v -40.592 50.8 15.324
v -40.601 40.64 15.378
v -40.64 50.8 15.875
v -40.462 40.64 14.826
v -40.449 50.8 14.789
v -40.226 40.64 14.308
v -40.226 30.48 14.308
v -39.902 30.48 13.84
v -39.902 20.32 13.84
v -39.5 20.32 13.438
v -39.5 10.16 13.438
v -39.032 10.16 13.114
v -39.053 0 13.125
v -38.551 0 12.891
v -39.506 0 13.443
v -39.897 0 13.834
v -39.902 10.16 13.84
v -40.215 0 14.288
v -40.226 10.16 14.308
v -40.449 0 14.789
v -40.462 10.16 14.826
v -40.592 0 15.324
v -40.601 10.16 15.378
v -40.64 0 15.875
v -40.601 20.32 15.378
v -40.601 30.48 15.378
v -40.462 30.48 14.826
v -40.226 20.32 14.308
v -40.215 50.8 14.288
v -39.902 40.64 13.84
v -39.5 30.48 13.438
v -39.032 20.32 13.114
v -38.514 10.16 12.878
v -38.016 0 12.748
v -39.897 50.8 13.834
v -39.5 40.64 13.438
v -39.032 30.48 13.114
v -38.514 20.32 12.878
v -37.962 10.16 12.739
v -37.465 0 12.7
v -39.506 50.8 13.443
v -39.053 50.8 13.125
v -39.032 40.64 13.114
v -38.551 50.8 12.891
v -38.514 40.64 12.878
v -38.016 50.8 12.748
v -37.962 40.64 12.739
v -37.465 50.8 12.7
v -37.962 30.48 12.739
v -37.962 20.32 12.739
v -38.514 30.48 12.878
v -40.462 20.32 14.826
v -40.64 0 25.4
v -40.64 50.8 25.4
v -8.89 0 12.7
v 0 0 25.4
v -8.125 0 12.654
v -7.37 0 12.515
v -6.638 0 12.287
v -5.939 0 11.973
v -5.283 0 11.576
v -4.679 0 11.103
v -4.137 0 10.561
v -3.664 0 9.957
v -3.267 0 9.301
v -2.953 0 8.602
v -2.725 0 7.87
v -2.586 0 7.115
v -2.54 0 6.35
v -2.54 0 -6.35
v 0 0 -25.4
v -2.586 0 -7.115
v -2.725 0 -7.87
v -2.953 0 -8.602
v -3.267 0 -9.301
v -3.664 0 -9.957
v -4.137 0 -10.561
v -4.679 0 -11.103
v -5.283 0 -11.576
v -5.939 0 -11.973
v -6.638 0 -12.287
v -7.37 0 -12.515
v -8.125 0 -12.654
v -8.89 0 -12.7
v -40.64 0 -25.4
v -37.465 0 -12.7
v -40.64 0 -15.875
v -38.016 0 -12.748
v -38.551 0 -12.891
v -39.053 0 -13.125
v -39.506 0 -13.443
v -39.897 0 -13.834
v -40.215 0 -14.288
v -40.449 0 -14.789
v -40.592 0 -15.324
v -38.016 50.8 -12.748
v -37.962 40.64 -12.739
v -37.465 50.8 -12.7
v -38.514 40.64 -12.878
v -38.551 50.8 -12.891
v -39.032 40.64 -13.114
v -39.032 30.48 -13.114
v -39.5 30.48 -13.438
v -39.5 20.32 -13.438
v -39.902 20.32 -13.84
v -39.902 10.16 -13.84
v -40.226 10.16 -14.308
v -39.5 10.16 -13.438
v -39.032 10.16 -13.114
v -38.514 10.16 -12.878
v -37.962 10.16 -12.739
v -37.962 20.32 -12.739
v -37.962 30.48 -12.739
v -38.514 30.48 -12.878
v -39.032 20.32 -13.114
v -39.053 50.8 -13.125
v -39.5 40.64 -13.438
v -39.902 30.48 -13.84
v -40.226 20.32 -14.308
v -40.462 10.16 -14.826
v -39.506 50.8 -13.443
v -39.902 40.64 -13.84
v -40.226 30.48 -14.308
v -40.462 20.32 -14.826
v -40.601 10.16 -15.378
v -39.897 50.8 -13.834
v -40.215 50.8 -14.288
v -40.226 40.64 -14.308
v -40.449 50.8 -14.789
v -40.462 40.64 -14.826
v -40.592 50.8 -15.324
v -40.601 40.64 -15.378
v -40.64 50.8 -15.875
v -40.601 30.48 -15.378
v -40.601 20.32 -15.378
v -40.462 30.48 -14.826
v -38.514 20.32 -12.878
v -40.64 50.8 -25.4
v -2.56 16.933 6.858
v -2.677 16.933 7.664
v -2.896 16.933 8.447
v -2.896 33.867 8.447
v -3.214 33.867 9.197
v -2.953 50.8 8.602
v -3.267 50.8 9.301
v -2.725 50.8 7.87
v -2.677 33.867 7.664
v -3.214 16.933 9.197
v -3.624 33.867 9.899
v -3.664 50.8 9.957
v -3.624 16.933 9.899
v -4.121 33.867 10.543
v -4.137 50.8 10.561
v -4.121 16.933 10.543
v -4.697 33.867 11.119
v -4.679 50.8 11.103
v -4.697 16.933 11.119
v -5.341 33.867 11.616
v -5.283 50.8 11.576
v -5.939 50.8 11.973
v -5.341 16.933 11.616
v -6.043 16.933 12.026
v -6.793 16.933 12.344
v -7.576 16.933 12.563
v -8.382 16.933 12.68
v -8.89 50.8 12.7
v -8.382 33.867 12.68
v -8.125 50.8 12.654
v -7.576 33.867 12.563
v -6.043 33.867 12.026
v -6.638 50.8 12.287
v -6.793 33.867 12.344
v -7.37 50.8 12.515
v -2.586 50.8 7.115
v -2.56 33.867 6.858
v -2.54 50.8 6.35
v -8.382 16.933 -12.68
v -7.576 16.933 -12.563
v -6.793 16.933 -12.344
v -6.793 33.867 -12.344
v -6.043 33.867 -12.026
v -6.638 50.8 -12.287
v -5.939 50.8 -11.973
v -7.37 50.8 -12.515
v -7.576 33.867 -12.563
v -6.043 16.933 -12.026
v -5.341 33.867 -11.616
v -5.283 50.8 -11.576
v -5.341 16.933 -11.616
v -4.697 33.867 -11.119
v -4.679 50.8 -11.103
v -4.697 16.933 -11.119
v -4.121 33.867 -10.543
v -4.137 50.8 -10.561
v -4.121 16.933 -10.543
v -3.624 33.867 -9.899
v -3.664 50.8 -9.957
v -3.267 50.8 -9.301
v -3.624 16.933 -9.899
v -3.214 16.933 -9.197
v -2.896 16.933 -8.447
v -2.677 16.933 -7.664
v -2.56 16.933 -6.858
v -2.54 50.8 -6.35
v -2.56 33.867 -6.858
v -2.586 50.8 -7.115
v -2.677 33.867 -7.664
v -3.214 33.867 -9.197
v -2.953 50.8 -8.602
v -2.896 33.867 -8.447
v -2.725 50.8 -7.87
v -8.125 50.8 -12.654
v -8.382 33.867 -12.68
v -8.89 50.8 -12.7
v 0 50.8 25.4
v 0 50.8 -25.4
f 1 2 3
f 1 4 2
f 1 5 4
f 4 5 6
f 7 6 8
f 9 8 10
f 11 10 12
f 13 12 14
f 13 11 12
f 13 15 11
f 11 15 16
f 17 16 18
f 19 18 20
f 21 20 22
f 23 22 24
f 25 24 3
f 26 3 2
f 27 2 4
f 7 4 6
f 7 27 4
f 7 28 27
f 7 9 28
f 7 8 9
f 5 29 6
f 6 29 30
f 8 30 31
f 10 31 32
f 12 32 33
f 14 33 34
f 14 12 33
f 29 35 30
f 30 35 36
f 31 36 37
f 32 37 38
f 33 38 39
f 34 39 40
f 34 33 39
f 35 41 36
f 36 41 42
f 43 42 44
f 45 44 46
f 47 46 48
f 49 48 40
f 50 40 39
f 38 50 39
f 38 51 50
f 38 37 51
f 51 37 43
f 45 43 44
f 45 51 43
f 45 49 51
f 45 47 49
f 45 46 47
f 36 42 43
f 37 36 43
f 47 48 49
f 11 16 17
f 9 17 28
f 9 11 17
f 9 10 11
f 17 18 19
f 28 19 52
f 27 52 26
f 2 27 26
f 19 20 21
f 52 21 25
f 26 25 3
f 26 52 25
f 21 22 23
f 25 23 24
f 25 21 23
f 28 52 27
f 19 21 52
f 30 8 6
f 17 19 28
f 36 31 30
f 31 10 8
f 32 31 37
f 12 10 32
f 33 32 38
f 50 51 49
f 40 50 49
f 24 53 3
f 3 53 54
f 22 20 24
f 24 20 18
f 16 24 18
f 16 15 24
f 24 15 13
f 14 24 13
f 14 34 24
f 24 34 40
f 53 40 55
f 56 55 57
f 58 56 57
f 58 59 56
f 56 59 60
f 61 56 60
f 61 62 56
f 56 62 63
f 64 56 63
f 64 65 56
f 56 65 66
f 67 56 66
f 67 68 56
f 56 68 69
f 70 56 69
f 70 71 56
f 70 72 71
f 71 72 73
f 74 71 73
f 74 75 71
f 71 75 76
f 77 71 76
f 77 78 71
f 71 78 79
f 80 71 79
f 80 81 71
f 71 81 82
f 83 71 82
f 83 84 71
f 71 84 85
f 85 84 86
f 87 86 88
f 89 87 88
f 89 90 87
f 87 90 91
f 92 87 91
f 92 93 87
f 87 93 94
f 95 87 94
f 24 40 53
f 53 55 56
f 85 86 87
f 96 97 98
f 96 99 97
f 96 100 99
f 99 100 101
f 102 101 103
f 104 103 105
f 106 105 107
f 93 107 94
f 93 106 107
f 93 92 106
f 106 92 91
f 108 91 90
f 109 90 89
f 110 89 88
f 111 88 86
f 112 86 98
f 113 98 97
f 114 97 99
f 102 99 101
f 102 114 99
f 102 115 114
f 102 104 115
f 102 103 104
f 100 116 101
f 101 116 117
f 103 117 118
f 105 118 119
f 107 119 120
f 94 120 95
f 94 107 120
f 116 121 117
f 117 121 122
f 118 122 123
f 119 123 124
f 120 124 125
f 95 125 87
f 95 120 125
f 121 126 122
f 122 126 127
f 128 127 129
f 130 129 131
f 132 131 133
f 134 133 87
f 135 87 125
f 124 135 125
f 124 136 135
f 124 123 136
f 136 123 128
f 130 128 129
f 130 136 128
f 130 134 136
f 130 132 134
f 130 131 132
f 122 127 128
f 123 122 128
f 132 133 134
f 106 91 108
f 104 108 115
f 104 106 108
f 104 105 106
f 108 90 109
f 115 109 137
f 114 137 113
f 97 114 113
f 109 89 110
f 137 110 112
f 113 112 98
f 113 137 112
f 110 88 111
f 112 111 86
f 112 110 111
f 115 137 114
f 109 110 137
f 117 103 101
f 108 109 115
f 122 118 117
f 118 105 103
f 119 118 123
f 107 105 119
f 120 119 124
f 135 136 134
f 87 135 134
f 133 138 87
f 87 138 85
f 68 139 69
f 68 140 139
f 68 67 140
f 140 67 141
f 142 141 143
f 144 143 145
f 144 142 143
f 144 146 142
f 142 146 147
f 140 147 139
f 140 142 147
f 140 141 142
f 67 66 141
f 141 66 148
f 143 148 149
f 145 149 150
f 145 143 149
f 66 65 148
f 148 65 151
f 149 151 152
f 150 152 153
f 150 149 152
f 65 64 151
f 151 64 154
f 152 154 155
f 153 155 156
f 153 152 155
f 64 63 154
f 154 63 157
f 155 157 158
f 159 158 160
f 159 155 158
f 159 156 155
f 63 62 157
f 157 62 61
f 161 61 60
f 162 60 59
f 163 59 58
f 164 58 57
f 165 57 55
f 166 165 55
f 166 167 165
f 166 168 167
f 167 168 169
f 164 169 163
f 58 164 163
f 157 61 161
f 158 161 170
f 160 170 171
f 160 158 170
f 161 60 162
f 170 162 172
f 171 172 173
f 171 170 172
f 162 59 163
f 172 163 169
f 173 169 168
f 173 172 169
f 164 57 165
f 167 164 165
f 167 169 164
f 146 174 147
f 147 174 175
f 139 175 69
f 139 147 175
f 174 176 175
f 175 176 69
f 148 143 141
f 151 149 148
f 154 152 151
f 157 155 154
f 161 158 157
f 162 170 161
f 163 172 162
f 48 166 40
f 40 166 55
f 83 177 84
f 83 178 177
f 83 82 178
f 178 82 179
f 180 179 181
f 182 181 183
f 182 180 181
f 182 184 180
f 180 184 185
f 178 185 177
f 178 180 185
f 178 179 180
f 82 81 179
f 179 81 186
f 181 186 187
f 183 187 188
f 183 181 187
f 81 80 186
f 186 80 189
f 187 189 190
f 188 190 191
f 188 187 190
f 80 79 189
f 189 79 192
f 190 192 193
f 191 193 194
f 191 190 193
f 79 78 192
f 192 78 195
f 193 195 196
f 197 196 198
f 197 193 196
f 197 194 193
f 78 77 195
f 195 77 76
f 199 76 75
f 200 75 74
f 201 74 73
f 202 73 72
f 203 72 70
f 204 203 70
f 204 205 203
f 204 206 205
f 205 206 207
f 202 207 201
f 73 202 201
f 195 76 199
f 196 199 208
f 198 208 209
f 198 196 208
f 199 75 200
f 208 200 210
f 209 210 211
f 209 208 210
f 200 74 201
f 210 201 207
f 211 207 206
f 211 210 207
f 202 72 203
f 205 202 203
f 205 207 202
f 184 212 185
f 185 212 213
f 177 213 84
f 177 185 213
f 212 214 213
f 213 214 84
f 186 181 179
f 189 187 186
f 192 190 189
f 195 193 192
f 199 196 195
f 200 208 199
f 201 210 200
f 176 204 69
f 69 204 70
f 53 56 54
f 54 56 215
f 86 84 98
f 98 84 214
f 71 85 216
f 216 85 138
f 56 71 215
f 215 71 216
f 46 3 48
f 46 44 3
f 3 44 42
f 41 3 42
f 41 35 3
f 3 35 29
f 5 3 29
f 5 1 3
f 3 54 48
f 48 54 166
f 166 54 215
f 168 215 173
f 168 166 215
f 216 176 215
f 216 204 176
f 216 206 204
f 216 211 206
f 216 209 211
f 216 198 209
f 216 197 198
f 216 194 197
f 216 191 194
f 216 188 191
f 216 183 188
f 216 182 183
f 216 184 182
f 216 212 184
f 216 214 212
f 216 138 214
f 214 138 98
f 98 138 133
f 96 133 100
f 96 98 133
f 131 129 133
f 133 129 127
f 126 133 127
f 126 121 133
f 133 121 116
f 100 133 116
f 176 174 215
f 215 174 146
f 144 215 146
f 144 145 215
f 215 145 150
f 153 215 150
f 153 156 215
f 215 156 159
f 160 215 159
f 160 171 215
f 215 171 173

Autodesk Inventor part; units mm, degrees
ref_plane "YZ Plane" through (0, 0, 0) normal (1, 0, 0) x (0, 1, 0)
ref_plane "XZ Plane" through (0, 0, 0) normal (0, 1, 0) x (-1, 0, 0)
ref_plane "XY Plane" through (0, 0, 0) normal (0, 0, 1) x (1, 0, 0)
sketch "Sketch1" plane through (0, 0, 0) normal (0, 1, 0) x (-1, 0, 0)
  line L0 (0, 0) -> (0, 25.4)
  line L1 (40.64, 25.4) -> (40.64, 12.7)
  line L2 (40.64, 12.7) -> (2.54, 12.7)
  line L3 (0, 25.4) -> (40.64, 25.4)
  line L4 (0, 0) -> (0, -25.4)
  line L5 (0, -25.4) -> (40.64, -25.4)
  line L6 (40.64, -25.4) -> (40.64, -12.7)
  line L7 (40.64, -12.7) -> (2.54, -12.7)
  line L8 (2.54, -12.7) -> (2.54, 12.7)
  dimension "d2" = 38.1
  dimension "d5" = 25.4
  dimension "d8" = 2.54
  dimension "d9" = 38.1
  dimension "d10" = 12.7
  dimension "d11" = 12.7
  dimension "d12" = 25.4
extrude "Extrusion1" add sketch "Sketch1" along normal blind 50.8
fillet "Fillet1" radius 6.35 1 edges at (-2.54, 25.4, -12.7)
fillet "Fillet2" radius 6.35 1 edges at (-2.54, 25.4, 12.7)
fillet "Fillet3" radius 3.175 1 edges at (-40.64, 25.4, -12.7)
fillet "Fillet4" radius 3.175 1 edges at (-40.64, 25.4, 12.7)
properties part number "Hook0"
